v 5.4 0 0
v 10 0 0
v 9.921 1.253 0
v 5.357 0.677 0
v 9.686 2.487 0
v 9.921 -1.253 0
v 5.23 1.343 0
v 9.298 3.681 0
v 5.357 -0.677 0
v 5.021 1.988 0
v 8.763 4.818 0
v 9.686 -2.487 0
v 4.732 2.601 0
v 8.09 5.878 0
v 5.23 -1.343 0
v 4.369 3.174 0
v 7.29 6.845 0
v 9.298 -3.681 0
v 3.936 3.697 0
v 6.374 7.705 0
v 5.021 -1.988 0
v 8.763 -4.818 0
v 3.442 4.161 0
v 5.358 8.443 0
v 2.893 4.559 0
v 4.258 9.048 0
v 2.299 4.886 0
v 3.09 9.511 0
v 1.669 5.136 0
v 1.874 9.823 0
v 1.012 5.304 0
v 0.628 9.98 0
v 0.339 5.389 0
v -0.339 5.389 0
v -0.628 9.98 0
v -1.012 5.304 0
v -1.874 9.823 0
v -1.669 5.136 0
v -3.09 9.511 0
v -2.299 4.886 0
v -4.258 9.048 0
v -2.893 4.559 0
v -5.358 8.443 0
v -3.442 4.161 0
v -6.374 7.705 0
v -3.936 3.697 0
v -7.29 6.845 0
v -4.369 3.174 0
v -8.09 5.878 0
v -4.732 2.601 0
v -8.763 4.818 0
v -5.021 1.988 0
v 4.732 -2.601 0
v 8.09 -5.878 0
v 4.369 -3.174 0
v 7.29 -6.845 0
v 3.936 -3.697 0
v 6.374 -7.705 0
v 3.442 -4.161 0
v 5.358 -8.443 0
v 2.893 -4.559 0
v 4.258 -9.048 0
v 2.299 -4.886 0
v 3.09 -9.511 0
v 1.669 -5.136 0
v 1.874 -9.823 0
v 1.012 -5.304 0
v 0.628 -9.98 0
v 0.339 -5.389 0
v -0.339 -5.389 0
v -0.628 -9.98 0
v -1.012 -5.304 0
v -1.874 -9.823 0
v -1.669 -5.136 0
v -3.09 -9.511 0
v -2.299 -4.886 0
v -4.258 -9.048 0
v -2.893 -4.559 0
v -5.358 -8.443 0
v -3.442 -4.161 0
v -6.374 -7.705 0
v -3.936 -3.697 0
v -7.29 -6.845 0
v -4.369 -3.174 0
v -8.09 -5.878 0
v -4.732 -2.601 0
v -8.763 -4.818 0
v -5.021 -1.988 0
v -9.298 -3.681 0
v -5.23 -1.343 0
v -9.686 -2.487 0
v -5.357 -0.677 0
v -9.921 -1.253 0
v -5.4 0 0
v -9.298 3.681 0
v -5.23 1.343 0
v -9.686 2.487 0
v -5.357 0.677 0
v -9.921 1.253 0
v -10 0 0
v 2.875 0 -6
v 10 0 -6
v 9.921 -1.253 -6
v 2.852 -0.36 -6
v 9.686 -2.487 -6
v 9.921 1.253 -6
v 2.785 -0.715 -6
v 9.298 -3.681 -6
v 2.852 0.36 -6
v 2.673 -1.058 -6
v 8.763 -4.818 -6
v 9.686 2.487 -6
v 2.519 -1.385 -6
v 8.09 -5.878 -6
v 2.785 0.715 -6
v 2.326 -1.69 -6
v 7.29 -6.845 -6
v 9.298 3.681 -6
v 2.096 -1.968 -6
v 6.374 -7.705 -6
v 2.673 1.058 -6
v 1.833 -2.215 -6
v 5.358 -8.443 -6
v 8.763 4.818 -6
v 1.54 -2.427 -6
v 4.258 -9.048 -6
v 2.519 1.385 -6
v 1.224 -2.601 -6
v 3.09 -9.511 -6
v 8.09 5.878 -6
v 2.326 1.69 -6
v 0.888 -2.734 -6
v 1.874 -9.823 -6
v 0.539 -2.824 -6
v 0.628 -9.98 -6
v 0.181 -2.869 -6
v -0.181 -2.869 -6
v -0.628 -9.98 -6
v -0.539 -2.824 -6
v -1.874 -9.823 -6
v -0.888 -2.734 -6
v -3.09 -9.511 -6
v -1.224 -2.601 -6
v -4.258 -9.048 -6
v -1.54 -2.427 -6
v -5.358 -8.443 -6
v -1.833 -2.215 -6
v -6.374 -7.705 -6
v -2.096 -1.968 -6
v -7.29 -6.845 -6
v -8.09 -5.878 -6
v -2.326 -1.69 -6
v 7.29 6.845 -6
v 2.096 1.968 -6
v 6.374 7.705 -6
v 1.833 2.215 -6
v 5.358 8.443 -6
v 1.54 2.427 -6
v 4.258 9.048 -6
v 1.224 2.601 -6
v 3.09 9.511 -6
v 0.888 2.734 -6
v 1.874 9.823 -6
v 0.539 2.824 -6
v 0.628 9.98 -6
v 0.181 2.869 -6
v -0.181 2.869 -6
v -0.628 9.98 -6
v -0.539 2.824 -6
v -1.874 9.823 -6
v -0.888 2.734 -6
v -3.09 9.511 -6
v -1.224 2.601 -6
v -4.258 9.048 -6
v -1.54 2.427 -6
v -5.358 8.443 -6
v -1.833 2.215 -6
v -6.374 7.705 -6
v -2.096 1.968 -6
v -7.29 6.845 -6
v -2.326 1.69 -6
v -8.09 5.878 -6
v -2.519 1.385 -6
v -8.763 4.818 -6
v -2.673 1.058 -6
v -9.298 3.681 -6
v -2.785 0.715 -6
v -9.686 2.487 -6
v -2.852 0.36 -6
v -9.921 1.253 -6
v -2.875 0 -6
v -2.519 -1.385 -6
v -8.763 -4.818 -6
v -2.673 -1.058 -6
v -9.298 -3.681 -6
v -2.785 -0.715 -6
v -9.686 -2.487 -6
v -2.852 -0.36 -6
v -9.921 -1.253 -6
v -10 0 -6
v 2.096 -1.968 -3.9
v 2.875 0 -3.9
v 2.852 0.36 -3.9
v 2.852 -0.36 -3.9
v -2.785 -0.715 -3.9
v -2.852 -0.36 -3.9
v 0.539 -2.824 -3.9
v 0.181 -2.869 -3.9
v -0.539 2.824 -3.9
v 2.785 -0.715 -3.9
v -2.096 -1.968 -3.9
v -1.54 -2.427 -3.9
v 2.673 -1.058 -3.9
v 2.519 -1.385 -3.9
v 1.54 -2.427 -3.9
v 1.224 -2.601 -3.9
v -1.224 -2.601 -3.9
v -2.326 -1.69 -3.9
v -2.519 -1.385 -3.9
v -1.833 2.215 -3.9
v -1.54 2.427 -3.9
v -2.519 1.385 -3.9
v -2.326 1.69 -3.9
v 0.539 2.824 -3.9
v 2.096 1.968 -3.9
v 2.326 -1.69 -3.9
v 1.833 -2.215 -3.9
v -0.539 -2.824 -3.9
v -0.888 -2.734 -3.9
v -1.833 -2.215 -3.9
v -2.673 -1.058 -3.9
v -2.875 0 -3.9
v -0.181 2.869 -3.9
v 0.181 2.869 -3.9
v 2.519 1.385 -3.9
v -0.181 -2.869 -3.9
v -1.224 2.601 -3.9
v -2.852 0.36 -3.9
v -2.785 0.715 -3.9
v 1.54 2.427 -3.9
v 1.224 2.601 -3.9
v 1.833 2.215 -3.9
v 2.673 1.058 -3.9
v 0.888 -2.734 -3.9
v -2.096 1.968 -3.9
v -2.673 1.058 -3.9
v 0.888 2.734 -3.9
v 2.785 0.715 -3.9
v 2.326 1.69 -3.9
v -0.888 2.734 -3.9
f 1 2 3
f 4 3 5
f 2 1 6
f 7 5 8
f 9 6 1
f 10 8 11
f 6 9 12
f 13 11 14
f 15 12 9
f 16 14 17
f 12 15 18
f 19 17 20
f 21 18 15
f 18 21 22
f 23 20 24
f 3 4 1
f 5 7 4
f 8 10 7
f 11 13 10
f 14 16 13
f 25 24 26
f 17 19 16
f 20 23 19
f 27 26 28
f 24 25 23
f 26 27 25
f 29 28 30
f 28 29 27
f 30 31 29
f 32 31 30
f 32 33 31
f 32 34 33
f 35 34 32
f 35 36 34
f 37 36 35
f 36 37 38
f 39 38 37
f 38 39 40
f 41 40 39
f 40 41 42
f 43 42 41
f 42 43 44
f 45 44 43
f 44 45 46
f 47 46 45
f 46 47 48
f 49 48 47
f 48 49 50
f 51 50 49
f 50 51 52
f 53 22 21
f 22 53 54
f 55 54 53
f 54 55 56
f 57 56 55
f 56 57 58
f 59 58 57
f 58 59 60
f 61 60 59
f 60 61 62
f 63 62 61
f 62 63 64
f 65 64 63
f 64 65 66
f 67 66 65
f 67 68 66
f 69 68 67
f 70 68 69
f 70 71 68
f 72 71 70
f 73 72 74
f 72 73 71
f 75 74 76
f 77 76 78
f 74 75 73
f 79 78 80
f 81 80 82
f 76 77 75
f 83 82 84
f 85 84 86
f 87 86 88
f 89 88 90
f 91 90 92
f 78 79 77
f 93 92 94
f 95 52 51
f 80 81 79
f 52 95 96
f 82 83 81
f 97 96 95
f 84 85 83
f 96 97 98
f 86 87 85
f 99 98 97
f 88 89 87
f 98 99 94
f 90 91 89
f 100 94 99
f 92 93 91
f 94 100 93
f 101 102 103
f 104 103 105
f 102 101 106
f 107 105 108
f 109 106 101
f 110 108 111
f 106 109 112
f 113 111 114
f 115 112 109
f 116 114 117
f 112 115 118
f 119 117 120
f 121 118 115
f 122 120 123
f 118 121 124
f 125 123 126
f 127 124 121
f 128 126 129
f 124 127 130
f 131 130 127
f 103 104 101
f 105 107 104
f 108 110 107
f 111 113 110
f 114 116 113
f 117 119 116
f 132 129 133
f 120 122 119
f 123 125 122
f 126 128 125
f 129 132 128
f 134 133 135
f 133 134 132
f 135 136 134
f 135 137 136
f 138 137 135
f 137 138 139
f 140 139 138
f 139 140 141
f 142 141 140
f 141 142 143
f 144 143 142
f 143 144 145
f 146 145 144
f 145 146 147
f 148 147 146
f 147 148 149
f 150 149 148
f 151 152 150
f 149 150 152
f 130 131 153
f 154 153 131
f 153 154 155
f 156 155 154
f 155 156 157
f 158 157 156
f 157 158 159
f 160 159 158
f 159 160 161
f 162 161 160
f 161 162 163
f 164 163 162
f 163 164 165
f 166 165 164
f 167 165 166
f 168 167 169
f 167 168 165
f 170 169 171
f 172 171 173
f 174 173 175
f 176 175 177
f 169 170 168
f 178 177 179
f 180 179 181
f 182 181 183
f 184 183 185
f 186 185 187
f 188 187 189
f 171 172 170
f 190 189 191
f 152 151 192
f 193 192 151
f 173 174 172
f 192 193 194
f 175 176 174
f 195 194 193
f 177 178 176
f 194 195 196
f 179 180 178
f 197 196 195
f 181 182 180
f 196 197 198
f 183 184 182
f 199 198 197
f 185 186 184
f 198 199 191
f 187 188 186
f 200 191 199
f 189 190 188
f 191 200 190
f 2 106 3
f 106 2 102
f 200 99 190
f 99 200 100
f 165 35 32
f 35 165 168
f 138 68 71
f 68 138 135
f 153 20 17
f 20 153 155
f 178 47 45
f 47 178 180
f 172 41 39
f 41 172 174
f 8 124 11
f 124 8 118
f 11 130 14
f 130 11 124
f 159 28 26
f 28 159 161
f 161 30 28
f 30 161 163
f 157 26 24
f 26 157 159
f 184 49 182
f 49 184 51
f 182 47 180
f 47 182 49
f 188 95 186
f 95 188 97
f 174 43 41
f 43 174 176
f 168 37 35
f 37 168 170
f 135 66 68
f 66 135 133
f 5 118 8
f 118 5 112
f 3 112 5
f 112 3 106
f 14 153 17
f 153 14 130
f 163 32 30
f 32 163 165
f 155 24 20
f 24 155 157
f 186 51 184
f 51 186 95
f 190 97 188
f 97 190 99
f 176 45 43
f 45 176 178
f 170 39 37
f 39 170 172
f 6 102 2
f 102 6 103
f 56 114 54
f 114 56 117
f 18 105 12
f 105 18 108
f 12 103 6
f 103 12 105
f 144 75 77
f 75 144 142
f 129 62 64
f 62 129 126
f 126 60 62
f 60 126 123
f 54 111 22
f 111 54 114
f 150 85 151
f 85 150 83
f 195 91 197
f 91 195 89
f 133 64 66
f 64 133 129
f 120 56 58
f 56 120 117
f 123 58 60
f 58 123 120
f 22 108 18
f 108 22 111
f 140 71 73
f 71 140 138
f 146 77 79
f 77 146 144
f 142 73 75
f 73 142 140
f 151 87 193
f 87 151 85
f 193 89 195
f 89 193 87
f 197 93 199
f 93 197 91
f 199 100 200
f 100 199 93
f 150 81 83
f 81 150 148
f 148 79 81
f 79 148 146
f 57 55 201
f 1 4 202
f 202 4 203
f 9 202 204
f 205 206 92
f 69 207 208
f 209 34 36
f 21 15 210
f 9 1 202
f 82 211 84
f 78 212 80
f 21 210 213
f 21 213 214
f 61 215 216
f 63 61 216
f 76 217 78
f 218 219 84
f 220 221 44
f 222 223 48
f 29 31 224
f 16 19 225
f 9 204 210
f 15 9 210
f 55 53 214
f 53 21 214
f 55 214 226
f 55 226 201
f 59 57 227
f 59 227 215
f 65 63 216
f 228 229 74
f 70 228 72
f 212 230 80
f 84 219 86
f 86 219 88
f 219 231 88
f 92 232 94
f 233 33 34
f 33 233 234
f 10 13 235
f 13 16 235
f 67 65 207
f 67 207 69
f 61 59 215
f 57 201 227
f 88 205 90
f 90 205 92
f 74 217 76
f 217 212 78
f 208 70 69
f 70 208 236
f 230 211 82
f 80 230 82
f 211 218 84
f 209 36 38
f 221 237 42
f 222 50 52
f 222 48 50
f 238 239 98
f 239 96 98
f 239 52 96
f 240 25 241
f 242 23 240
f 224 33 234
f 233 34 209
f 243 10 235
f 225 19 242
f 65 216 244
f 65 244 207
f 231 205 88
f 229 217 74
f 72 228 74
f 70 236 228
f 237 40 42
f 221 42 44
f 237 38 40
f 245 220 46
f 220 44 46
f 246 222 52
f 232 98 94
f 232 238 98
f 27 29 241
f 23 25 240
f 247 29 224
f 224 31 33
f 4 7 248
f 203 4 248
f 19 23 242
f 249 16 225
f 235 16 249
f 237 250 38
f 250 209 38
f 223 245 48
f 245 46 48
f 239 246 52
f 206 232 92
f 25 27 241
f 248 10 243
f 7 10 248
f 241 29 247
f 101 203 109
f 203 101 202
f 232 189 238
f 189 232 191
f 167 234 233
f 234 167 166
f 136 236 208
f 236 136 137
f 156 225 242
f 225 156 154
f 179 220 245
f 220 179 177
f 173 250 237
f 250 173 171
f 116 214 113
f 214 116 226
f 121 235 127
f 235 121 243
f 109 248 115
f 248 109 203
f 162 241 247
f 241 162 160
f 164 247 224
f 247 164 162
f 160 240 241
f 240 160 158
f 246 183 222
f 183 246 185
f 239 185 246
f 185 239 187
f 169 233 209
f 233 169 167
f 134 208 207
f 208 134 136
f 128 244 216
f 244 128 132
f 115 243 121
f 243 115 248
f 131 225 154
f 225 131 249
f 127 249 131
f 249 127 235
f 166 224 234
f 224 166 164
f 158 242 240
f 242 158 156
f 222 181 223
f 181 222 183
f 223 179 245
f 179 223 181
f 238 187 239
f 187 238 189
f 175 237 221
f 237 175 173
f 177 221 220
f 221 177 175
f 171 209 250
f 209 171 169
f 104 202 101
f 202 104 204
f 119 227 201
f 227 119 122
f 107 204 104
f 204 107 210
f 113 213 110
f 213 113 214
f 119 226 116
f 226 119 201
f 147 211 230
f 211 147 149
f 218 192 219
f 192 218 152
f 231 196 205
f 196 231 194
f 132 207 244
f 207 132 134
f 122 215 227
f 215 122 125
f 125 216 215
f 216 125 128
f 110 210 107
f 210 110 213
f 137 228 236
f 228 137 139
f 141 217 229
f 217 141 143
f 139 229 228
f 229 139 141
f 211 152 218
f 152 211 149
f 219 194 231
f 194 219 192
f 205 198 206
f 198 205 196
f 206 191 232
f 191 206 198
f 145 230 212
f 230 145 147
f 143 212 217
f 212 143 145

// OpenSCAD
$fn = 50;


difference() {
	union() {
		translate(v = [0, 0, -6.0000000000]) {
			cylinder(h = 6, r = 7.0000000000);
		}
		translate(v = [0, 0, -6.0000000000]) {
			cylinder(h = 6, r = 10.0000000000);
		}
	}
	union() {
		translate(v = [0, 0, 0]) {
			rotate(a = [0, 0, 0]) {
				difference() {
					union() {
						#translate(v = [0, 0, -6.0000000000]) {
							cylinder(h = 6, r = 2.6000000000);
						}
						#translate(v = [0, 0, -3.9000000000]) {
							cylinder(h = 3.9000000000, r = 7.0000000000, r1 = 2.8750000000, r2 = 5.4000000000);
						}
						#translate(v = [0, 0, -6.0000000000]) {
							cylinder(h = 6, r = 2.8750000000);
						}
						#translate(v = [0, 0, -6.0000000000]) {
							cylinder(h = 6, r = 2.6000000000);
						}
					}
					union();
				}
			}
		}
	}
}
